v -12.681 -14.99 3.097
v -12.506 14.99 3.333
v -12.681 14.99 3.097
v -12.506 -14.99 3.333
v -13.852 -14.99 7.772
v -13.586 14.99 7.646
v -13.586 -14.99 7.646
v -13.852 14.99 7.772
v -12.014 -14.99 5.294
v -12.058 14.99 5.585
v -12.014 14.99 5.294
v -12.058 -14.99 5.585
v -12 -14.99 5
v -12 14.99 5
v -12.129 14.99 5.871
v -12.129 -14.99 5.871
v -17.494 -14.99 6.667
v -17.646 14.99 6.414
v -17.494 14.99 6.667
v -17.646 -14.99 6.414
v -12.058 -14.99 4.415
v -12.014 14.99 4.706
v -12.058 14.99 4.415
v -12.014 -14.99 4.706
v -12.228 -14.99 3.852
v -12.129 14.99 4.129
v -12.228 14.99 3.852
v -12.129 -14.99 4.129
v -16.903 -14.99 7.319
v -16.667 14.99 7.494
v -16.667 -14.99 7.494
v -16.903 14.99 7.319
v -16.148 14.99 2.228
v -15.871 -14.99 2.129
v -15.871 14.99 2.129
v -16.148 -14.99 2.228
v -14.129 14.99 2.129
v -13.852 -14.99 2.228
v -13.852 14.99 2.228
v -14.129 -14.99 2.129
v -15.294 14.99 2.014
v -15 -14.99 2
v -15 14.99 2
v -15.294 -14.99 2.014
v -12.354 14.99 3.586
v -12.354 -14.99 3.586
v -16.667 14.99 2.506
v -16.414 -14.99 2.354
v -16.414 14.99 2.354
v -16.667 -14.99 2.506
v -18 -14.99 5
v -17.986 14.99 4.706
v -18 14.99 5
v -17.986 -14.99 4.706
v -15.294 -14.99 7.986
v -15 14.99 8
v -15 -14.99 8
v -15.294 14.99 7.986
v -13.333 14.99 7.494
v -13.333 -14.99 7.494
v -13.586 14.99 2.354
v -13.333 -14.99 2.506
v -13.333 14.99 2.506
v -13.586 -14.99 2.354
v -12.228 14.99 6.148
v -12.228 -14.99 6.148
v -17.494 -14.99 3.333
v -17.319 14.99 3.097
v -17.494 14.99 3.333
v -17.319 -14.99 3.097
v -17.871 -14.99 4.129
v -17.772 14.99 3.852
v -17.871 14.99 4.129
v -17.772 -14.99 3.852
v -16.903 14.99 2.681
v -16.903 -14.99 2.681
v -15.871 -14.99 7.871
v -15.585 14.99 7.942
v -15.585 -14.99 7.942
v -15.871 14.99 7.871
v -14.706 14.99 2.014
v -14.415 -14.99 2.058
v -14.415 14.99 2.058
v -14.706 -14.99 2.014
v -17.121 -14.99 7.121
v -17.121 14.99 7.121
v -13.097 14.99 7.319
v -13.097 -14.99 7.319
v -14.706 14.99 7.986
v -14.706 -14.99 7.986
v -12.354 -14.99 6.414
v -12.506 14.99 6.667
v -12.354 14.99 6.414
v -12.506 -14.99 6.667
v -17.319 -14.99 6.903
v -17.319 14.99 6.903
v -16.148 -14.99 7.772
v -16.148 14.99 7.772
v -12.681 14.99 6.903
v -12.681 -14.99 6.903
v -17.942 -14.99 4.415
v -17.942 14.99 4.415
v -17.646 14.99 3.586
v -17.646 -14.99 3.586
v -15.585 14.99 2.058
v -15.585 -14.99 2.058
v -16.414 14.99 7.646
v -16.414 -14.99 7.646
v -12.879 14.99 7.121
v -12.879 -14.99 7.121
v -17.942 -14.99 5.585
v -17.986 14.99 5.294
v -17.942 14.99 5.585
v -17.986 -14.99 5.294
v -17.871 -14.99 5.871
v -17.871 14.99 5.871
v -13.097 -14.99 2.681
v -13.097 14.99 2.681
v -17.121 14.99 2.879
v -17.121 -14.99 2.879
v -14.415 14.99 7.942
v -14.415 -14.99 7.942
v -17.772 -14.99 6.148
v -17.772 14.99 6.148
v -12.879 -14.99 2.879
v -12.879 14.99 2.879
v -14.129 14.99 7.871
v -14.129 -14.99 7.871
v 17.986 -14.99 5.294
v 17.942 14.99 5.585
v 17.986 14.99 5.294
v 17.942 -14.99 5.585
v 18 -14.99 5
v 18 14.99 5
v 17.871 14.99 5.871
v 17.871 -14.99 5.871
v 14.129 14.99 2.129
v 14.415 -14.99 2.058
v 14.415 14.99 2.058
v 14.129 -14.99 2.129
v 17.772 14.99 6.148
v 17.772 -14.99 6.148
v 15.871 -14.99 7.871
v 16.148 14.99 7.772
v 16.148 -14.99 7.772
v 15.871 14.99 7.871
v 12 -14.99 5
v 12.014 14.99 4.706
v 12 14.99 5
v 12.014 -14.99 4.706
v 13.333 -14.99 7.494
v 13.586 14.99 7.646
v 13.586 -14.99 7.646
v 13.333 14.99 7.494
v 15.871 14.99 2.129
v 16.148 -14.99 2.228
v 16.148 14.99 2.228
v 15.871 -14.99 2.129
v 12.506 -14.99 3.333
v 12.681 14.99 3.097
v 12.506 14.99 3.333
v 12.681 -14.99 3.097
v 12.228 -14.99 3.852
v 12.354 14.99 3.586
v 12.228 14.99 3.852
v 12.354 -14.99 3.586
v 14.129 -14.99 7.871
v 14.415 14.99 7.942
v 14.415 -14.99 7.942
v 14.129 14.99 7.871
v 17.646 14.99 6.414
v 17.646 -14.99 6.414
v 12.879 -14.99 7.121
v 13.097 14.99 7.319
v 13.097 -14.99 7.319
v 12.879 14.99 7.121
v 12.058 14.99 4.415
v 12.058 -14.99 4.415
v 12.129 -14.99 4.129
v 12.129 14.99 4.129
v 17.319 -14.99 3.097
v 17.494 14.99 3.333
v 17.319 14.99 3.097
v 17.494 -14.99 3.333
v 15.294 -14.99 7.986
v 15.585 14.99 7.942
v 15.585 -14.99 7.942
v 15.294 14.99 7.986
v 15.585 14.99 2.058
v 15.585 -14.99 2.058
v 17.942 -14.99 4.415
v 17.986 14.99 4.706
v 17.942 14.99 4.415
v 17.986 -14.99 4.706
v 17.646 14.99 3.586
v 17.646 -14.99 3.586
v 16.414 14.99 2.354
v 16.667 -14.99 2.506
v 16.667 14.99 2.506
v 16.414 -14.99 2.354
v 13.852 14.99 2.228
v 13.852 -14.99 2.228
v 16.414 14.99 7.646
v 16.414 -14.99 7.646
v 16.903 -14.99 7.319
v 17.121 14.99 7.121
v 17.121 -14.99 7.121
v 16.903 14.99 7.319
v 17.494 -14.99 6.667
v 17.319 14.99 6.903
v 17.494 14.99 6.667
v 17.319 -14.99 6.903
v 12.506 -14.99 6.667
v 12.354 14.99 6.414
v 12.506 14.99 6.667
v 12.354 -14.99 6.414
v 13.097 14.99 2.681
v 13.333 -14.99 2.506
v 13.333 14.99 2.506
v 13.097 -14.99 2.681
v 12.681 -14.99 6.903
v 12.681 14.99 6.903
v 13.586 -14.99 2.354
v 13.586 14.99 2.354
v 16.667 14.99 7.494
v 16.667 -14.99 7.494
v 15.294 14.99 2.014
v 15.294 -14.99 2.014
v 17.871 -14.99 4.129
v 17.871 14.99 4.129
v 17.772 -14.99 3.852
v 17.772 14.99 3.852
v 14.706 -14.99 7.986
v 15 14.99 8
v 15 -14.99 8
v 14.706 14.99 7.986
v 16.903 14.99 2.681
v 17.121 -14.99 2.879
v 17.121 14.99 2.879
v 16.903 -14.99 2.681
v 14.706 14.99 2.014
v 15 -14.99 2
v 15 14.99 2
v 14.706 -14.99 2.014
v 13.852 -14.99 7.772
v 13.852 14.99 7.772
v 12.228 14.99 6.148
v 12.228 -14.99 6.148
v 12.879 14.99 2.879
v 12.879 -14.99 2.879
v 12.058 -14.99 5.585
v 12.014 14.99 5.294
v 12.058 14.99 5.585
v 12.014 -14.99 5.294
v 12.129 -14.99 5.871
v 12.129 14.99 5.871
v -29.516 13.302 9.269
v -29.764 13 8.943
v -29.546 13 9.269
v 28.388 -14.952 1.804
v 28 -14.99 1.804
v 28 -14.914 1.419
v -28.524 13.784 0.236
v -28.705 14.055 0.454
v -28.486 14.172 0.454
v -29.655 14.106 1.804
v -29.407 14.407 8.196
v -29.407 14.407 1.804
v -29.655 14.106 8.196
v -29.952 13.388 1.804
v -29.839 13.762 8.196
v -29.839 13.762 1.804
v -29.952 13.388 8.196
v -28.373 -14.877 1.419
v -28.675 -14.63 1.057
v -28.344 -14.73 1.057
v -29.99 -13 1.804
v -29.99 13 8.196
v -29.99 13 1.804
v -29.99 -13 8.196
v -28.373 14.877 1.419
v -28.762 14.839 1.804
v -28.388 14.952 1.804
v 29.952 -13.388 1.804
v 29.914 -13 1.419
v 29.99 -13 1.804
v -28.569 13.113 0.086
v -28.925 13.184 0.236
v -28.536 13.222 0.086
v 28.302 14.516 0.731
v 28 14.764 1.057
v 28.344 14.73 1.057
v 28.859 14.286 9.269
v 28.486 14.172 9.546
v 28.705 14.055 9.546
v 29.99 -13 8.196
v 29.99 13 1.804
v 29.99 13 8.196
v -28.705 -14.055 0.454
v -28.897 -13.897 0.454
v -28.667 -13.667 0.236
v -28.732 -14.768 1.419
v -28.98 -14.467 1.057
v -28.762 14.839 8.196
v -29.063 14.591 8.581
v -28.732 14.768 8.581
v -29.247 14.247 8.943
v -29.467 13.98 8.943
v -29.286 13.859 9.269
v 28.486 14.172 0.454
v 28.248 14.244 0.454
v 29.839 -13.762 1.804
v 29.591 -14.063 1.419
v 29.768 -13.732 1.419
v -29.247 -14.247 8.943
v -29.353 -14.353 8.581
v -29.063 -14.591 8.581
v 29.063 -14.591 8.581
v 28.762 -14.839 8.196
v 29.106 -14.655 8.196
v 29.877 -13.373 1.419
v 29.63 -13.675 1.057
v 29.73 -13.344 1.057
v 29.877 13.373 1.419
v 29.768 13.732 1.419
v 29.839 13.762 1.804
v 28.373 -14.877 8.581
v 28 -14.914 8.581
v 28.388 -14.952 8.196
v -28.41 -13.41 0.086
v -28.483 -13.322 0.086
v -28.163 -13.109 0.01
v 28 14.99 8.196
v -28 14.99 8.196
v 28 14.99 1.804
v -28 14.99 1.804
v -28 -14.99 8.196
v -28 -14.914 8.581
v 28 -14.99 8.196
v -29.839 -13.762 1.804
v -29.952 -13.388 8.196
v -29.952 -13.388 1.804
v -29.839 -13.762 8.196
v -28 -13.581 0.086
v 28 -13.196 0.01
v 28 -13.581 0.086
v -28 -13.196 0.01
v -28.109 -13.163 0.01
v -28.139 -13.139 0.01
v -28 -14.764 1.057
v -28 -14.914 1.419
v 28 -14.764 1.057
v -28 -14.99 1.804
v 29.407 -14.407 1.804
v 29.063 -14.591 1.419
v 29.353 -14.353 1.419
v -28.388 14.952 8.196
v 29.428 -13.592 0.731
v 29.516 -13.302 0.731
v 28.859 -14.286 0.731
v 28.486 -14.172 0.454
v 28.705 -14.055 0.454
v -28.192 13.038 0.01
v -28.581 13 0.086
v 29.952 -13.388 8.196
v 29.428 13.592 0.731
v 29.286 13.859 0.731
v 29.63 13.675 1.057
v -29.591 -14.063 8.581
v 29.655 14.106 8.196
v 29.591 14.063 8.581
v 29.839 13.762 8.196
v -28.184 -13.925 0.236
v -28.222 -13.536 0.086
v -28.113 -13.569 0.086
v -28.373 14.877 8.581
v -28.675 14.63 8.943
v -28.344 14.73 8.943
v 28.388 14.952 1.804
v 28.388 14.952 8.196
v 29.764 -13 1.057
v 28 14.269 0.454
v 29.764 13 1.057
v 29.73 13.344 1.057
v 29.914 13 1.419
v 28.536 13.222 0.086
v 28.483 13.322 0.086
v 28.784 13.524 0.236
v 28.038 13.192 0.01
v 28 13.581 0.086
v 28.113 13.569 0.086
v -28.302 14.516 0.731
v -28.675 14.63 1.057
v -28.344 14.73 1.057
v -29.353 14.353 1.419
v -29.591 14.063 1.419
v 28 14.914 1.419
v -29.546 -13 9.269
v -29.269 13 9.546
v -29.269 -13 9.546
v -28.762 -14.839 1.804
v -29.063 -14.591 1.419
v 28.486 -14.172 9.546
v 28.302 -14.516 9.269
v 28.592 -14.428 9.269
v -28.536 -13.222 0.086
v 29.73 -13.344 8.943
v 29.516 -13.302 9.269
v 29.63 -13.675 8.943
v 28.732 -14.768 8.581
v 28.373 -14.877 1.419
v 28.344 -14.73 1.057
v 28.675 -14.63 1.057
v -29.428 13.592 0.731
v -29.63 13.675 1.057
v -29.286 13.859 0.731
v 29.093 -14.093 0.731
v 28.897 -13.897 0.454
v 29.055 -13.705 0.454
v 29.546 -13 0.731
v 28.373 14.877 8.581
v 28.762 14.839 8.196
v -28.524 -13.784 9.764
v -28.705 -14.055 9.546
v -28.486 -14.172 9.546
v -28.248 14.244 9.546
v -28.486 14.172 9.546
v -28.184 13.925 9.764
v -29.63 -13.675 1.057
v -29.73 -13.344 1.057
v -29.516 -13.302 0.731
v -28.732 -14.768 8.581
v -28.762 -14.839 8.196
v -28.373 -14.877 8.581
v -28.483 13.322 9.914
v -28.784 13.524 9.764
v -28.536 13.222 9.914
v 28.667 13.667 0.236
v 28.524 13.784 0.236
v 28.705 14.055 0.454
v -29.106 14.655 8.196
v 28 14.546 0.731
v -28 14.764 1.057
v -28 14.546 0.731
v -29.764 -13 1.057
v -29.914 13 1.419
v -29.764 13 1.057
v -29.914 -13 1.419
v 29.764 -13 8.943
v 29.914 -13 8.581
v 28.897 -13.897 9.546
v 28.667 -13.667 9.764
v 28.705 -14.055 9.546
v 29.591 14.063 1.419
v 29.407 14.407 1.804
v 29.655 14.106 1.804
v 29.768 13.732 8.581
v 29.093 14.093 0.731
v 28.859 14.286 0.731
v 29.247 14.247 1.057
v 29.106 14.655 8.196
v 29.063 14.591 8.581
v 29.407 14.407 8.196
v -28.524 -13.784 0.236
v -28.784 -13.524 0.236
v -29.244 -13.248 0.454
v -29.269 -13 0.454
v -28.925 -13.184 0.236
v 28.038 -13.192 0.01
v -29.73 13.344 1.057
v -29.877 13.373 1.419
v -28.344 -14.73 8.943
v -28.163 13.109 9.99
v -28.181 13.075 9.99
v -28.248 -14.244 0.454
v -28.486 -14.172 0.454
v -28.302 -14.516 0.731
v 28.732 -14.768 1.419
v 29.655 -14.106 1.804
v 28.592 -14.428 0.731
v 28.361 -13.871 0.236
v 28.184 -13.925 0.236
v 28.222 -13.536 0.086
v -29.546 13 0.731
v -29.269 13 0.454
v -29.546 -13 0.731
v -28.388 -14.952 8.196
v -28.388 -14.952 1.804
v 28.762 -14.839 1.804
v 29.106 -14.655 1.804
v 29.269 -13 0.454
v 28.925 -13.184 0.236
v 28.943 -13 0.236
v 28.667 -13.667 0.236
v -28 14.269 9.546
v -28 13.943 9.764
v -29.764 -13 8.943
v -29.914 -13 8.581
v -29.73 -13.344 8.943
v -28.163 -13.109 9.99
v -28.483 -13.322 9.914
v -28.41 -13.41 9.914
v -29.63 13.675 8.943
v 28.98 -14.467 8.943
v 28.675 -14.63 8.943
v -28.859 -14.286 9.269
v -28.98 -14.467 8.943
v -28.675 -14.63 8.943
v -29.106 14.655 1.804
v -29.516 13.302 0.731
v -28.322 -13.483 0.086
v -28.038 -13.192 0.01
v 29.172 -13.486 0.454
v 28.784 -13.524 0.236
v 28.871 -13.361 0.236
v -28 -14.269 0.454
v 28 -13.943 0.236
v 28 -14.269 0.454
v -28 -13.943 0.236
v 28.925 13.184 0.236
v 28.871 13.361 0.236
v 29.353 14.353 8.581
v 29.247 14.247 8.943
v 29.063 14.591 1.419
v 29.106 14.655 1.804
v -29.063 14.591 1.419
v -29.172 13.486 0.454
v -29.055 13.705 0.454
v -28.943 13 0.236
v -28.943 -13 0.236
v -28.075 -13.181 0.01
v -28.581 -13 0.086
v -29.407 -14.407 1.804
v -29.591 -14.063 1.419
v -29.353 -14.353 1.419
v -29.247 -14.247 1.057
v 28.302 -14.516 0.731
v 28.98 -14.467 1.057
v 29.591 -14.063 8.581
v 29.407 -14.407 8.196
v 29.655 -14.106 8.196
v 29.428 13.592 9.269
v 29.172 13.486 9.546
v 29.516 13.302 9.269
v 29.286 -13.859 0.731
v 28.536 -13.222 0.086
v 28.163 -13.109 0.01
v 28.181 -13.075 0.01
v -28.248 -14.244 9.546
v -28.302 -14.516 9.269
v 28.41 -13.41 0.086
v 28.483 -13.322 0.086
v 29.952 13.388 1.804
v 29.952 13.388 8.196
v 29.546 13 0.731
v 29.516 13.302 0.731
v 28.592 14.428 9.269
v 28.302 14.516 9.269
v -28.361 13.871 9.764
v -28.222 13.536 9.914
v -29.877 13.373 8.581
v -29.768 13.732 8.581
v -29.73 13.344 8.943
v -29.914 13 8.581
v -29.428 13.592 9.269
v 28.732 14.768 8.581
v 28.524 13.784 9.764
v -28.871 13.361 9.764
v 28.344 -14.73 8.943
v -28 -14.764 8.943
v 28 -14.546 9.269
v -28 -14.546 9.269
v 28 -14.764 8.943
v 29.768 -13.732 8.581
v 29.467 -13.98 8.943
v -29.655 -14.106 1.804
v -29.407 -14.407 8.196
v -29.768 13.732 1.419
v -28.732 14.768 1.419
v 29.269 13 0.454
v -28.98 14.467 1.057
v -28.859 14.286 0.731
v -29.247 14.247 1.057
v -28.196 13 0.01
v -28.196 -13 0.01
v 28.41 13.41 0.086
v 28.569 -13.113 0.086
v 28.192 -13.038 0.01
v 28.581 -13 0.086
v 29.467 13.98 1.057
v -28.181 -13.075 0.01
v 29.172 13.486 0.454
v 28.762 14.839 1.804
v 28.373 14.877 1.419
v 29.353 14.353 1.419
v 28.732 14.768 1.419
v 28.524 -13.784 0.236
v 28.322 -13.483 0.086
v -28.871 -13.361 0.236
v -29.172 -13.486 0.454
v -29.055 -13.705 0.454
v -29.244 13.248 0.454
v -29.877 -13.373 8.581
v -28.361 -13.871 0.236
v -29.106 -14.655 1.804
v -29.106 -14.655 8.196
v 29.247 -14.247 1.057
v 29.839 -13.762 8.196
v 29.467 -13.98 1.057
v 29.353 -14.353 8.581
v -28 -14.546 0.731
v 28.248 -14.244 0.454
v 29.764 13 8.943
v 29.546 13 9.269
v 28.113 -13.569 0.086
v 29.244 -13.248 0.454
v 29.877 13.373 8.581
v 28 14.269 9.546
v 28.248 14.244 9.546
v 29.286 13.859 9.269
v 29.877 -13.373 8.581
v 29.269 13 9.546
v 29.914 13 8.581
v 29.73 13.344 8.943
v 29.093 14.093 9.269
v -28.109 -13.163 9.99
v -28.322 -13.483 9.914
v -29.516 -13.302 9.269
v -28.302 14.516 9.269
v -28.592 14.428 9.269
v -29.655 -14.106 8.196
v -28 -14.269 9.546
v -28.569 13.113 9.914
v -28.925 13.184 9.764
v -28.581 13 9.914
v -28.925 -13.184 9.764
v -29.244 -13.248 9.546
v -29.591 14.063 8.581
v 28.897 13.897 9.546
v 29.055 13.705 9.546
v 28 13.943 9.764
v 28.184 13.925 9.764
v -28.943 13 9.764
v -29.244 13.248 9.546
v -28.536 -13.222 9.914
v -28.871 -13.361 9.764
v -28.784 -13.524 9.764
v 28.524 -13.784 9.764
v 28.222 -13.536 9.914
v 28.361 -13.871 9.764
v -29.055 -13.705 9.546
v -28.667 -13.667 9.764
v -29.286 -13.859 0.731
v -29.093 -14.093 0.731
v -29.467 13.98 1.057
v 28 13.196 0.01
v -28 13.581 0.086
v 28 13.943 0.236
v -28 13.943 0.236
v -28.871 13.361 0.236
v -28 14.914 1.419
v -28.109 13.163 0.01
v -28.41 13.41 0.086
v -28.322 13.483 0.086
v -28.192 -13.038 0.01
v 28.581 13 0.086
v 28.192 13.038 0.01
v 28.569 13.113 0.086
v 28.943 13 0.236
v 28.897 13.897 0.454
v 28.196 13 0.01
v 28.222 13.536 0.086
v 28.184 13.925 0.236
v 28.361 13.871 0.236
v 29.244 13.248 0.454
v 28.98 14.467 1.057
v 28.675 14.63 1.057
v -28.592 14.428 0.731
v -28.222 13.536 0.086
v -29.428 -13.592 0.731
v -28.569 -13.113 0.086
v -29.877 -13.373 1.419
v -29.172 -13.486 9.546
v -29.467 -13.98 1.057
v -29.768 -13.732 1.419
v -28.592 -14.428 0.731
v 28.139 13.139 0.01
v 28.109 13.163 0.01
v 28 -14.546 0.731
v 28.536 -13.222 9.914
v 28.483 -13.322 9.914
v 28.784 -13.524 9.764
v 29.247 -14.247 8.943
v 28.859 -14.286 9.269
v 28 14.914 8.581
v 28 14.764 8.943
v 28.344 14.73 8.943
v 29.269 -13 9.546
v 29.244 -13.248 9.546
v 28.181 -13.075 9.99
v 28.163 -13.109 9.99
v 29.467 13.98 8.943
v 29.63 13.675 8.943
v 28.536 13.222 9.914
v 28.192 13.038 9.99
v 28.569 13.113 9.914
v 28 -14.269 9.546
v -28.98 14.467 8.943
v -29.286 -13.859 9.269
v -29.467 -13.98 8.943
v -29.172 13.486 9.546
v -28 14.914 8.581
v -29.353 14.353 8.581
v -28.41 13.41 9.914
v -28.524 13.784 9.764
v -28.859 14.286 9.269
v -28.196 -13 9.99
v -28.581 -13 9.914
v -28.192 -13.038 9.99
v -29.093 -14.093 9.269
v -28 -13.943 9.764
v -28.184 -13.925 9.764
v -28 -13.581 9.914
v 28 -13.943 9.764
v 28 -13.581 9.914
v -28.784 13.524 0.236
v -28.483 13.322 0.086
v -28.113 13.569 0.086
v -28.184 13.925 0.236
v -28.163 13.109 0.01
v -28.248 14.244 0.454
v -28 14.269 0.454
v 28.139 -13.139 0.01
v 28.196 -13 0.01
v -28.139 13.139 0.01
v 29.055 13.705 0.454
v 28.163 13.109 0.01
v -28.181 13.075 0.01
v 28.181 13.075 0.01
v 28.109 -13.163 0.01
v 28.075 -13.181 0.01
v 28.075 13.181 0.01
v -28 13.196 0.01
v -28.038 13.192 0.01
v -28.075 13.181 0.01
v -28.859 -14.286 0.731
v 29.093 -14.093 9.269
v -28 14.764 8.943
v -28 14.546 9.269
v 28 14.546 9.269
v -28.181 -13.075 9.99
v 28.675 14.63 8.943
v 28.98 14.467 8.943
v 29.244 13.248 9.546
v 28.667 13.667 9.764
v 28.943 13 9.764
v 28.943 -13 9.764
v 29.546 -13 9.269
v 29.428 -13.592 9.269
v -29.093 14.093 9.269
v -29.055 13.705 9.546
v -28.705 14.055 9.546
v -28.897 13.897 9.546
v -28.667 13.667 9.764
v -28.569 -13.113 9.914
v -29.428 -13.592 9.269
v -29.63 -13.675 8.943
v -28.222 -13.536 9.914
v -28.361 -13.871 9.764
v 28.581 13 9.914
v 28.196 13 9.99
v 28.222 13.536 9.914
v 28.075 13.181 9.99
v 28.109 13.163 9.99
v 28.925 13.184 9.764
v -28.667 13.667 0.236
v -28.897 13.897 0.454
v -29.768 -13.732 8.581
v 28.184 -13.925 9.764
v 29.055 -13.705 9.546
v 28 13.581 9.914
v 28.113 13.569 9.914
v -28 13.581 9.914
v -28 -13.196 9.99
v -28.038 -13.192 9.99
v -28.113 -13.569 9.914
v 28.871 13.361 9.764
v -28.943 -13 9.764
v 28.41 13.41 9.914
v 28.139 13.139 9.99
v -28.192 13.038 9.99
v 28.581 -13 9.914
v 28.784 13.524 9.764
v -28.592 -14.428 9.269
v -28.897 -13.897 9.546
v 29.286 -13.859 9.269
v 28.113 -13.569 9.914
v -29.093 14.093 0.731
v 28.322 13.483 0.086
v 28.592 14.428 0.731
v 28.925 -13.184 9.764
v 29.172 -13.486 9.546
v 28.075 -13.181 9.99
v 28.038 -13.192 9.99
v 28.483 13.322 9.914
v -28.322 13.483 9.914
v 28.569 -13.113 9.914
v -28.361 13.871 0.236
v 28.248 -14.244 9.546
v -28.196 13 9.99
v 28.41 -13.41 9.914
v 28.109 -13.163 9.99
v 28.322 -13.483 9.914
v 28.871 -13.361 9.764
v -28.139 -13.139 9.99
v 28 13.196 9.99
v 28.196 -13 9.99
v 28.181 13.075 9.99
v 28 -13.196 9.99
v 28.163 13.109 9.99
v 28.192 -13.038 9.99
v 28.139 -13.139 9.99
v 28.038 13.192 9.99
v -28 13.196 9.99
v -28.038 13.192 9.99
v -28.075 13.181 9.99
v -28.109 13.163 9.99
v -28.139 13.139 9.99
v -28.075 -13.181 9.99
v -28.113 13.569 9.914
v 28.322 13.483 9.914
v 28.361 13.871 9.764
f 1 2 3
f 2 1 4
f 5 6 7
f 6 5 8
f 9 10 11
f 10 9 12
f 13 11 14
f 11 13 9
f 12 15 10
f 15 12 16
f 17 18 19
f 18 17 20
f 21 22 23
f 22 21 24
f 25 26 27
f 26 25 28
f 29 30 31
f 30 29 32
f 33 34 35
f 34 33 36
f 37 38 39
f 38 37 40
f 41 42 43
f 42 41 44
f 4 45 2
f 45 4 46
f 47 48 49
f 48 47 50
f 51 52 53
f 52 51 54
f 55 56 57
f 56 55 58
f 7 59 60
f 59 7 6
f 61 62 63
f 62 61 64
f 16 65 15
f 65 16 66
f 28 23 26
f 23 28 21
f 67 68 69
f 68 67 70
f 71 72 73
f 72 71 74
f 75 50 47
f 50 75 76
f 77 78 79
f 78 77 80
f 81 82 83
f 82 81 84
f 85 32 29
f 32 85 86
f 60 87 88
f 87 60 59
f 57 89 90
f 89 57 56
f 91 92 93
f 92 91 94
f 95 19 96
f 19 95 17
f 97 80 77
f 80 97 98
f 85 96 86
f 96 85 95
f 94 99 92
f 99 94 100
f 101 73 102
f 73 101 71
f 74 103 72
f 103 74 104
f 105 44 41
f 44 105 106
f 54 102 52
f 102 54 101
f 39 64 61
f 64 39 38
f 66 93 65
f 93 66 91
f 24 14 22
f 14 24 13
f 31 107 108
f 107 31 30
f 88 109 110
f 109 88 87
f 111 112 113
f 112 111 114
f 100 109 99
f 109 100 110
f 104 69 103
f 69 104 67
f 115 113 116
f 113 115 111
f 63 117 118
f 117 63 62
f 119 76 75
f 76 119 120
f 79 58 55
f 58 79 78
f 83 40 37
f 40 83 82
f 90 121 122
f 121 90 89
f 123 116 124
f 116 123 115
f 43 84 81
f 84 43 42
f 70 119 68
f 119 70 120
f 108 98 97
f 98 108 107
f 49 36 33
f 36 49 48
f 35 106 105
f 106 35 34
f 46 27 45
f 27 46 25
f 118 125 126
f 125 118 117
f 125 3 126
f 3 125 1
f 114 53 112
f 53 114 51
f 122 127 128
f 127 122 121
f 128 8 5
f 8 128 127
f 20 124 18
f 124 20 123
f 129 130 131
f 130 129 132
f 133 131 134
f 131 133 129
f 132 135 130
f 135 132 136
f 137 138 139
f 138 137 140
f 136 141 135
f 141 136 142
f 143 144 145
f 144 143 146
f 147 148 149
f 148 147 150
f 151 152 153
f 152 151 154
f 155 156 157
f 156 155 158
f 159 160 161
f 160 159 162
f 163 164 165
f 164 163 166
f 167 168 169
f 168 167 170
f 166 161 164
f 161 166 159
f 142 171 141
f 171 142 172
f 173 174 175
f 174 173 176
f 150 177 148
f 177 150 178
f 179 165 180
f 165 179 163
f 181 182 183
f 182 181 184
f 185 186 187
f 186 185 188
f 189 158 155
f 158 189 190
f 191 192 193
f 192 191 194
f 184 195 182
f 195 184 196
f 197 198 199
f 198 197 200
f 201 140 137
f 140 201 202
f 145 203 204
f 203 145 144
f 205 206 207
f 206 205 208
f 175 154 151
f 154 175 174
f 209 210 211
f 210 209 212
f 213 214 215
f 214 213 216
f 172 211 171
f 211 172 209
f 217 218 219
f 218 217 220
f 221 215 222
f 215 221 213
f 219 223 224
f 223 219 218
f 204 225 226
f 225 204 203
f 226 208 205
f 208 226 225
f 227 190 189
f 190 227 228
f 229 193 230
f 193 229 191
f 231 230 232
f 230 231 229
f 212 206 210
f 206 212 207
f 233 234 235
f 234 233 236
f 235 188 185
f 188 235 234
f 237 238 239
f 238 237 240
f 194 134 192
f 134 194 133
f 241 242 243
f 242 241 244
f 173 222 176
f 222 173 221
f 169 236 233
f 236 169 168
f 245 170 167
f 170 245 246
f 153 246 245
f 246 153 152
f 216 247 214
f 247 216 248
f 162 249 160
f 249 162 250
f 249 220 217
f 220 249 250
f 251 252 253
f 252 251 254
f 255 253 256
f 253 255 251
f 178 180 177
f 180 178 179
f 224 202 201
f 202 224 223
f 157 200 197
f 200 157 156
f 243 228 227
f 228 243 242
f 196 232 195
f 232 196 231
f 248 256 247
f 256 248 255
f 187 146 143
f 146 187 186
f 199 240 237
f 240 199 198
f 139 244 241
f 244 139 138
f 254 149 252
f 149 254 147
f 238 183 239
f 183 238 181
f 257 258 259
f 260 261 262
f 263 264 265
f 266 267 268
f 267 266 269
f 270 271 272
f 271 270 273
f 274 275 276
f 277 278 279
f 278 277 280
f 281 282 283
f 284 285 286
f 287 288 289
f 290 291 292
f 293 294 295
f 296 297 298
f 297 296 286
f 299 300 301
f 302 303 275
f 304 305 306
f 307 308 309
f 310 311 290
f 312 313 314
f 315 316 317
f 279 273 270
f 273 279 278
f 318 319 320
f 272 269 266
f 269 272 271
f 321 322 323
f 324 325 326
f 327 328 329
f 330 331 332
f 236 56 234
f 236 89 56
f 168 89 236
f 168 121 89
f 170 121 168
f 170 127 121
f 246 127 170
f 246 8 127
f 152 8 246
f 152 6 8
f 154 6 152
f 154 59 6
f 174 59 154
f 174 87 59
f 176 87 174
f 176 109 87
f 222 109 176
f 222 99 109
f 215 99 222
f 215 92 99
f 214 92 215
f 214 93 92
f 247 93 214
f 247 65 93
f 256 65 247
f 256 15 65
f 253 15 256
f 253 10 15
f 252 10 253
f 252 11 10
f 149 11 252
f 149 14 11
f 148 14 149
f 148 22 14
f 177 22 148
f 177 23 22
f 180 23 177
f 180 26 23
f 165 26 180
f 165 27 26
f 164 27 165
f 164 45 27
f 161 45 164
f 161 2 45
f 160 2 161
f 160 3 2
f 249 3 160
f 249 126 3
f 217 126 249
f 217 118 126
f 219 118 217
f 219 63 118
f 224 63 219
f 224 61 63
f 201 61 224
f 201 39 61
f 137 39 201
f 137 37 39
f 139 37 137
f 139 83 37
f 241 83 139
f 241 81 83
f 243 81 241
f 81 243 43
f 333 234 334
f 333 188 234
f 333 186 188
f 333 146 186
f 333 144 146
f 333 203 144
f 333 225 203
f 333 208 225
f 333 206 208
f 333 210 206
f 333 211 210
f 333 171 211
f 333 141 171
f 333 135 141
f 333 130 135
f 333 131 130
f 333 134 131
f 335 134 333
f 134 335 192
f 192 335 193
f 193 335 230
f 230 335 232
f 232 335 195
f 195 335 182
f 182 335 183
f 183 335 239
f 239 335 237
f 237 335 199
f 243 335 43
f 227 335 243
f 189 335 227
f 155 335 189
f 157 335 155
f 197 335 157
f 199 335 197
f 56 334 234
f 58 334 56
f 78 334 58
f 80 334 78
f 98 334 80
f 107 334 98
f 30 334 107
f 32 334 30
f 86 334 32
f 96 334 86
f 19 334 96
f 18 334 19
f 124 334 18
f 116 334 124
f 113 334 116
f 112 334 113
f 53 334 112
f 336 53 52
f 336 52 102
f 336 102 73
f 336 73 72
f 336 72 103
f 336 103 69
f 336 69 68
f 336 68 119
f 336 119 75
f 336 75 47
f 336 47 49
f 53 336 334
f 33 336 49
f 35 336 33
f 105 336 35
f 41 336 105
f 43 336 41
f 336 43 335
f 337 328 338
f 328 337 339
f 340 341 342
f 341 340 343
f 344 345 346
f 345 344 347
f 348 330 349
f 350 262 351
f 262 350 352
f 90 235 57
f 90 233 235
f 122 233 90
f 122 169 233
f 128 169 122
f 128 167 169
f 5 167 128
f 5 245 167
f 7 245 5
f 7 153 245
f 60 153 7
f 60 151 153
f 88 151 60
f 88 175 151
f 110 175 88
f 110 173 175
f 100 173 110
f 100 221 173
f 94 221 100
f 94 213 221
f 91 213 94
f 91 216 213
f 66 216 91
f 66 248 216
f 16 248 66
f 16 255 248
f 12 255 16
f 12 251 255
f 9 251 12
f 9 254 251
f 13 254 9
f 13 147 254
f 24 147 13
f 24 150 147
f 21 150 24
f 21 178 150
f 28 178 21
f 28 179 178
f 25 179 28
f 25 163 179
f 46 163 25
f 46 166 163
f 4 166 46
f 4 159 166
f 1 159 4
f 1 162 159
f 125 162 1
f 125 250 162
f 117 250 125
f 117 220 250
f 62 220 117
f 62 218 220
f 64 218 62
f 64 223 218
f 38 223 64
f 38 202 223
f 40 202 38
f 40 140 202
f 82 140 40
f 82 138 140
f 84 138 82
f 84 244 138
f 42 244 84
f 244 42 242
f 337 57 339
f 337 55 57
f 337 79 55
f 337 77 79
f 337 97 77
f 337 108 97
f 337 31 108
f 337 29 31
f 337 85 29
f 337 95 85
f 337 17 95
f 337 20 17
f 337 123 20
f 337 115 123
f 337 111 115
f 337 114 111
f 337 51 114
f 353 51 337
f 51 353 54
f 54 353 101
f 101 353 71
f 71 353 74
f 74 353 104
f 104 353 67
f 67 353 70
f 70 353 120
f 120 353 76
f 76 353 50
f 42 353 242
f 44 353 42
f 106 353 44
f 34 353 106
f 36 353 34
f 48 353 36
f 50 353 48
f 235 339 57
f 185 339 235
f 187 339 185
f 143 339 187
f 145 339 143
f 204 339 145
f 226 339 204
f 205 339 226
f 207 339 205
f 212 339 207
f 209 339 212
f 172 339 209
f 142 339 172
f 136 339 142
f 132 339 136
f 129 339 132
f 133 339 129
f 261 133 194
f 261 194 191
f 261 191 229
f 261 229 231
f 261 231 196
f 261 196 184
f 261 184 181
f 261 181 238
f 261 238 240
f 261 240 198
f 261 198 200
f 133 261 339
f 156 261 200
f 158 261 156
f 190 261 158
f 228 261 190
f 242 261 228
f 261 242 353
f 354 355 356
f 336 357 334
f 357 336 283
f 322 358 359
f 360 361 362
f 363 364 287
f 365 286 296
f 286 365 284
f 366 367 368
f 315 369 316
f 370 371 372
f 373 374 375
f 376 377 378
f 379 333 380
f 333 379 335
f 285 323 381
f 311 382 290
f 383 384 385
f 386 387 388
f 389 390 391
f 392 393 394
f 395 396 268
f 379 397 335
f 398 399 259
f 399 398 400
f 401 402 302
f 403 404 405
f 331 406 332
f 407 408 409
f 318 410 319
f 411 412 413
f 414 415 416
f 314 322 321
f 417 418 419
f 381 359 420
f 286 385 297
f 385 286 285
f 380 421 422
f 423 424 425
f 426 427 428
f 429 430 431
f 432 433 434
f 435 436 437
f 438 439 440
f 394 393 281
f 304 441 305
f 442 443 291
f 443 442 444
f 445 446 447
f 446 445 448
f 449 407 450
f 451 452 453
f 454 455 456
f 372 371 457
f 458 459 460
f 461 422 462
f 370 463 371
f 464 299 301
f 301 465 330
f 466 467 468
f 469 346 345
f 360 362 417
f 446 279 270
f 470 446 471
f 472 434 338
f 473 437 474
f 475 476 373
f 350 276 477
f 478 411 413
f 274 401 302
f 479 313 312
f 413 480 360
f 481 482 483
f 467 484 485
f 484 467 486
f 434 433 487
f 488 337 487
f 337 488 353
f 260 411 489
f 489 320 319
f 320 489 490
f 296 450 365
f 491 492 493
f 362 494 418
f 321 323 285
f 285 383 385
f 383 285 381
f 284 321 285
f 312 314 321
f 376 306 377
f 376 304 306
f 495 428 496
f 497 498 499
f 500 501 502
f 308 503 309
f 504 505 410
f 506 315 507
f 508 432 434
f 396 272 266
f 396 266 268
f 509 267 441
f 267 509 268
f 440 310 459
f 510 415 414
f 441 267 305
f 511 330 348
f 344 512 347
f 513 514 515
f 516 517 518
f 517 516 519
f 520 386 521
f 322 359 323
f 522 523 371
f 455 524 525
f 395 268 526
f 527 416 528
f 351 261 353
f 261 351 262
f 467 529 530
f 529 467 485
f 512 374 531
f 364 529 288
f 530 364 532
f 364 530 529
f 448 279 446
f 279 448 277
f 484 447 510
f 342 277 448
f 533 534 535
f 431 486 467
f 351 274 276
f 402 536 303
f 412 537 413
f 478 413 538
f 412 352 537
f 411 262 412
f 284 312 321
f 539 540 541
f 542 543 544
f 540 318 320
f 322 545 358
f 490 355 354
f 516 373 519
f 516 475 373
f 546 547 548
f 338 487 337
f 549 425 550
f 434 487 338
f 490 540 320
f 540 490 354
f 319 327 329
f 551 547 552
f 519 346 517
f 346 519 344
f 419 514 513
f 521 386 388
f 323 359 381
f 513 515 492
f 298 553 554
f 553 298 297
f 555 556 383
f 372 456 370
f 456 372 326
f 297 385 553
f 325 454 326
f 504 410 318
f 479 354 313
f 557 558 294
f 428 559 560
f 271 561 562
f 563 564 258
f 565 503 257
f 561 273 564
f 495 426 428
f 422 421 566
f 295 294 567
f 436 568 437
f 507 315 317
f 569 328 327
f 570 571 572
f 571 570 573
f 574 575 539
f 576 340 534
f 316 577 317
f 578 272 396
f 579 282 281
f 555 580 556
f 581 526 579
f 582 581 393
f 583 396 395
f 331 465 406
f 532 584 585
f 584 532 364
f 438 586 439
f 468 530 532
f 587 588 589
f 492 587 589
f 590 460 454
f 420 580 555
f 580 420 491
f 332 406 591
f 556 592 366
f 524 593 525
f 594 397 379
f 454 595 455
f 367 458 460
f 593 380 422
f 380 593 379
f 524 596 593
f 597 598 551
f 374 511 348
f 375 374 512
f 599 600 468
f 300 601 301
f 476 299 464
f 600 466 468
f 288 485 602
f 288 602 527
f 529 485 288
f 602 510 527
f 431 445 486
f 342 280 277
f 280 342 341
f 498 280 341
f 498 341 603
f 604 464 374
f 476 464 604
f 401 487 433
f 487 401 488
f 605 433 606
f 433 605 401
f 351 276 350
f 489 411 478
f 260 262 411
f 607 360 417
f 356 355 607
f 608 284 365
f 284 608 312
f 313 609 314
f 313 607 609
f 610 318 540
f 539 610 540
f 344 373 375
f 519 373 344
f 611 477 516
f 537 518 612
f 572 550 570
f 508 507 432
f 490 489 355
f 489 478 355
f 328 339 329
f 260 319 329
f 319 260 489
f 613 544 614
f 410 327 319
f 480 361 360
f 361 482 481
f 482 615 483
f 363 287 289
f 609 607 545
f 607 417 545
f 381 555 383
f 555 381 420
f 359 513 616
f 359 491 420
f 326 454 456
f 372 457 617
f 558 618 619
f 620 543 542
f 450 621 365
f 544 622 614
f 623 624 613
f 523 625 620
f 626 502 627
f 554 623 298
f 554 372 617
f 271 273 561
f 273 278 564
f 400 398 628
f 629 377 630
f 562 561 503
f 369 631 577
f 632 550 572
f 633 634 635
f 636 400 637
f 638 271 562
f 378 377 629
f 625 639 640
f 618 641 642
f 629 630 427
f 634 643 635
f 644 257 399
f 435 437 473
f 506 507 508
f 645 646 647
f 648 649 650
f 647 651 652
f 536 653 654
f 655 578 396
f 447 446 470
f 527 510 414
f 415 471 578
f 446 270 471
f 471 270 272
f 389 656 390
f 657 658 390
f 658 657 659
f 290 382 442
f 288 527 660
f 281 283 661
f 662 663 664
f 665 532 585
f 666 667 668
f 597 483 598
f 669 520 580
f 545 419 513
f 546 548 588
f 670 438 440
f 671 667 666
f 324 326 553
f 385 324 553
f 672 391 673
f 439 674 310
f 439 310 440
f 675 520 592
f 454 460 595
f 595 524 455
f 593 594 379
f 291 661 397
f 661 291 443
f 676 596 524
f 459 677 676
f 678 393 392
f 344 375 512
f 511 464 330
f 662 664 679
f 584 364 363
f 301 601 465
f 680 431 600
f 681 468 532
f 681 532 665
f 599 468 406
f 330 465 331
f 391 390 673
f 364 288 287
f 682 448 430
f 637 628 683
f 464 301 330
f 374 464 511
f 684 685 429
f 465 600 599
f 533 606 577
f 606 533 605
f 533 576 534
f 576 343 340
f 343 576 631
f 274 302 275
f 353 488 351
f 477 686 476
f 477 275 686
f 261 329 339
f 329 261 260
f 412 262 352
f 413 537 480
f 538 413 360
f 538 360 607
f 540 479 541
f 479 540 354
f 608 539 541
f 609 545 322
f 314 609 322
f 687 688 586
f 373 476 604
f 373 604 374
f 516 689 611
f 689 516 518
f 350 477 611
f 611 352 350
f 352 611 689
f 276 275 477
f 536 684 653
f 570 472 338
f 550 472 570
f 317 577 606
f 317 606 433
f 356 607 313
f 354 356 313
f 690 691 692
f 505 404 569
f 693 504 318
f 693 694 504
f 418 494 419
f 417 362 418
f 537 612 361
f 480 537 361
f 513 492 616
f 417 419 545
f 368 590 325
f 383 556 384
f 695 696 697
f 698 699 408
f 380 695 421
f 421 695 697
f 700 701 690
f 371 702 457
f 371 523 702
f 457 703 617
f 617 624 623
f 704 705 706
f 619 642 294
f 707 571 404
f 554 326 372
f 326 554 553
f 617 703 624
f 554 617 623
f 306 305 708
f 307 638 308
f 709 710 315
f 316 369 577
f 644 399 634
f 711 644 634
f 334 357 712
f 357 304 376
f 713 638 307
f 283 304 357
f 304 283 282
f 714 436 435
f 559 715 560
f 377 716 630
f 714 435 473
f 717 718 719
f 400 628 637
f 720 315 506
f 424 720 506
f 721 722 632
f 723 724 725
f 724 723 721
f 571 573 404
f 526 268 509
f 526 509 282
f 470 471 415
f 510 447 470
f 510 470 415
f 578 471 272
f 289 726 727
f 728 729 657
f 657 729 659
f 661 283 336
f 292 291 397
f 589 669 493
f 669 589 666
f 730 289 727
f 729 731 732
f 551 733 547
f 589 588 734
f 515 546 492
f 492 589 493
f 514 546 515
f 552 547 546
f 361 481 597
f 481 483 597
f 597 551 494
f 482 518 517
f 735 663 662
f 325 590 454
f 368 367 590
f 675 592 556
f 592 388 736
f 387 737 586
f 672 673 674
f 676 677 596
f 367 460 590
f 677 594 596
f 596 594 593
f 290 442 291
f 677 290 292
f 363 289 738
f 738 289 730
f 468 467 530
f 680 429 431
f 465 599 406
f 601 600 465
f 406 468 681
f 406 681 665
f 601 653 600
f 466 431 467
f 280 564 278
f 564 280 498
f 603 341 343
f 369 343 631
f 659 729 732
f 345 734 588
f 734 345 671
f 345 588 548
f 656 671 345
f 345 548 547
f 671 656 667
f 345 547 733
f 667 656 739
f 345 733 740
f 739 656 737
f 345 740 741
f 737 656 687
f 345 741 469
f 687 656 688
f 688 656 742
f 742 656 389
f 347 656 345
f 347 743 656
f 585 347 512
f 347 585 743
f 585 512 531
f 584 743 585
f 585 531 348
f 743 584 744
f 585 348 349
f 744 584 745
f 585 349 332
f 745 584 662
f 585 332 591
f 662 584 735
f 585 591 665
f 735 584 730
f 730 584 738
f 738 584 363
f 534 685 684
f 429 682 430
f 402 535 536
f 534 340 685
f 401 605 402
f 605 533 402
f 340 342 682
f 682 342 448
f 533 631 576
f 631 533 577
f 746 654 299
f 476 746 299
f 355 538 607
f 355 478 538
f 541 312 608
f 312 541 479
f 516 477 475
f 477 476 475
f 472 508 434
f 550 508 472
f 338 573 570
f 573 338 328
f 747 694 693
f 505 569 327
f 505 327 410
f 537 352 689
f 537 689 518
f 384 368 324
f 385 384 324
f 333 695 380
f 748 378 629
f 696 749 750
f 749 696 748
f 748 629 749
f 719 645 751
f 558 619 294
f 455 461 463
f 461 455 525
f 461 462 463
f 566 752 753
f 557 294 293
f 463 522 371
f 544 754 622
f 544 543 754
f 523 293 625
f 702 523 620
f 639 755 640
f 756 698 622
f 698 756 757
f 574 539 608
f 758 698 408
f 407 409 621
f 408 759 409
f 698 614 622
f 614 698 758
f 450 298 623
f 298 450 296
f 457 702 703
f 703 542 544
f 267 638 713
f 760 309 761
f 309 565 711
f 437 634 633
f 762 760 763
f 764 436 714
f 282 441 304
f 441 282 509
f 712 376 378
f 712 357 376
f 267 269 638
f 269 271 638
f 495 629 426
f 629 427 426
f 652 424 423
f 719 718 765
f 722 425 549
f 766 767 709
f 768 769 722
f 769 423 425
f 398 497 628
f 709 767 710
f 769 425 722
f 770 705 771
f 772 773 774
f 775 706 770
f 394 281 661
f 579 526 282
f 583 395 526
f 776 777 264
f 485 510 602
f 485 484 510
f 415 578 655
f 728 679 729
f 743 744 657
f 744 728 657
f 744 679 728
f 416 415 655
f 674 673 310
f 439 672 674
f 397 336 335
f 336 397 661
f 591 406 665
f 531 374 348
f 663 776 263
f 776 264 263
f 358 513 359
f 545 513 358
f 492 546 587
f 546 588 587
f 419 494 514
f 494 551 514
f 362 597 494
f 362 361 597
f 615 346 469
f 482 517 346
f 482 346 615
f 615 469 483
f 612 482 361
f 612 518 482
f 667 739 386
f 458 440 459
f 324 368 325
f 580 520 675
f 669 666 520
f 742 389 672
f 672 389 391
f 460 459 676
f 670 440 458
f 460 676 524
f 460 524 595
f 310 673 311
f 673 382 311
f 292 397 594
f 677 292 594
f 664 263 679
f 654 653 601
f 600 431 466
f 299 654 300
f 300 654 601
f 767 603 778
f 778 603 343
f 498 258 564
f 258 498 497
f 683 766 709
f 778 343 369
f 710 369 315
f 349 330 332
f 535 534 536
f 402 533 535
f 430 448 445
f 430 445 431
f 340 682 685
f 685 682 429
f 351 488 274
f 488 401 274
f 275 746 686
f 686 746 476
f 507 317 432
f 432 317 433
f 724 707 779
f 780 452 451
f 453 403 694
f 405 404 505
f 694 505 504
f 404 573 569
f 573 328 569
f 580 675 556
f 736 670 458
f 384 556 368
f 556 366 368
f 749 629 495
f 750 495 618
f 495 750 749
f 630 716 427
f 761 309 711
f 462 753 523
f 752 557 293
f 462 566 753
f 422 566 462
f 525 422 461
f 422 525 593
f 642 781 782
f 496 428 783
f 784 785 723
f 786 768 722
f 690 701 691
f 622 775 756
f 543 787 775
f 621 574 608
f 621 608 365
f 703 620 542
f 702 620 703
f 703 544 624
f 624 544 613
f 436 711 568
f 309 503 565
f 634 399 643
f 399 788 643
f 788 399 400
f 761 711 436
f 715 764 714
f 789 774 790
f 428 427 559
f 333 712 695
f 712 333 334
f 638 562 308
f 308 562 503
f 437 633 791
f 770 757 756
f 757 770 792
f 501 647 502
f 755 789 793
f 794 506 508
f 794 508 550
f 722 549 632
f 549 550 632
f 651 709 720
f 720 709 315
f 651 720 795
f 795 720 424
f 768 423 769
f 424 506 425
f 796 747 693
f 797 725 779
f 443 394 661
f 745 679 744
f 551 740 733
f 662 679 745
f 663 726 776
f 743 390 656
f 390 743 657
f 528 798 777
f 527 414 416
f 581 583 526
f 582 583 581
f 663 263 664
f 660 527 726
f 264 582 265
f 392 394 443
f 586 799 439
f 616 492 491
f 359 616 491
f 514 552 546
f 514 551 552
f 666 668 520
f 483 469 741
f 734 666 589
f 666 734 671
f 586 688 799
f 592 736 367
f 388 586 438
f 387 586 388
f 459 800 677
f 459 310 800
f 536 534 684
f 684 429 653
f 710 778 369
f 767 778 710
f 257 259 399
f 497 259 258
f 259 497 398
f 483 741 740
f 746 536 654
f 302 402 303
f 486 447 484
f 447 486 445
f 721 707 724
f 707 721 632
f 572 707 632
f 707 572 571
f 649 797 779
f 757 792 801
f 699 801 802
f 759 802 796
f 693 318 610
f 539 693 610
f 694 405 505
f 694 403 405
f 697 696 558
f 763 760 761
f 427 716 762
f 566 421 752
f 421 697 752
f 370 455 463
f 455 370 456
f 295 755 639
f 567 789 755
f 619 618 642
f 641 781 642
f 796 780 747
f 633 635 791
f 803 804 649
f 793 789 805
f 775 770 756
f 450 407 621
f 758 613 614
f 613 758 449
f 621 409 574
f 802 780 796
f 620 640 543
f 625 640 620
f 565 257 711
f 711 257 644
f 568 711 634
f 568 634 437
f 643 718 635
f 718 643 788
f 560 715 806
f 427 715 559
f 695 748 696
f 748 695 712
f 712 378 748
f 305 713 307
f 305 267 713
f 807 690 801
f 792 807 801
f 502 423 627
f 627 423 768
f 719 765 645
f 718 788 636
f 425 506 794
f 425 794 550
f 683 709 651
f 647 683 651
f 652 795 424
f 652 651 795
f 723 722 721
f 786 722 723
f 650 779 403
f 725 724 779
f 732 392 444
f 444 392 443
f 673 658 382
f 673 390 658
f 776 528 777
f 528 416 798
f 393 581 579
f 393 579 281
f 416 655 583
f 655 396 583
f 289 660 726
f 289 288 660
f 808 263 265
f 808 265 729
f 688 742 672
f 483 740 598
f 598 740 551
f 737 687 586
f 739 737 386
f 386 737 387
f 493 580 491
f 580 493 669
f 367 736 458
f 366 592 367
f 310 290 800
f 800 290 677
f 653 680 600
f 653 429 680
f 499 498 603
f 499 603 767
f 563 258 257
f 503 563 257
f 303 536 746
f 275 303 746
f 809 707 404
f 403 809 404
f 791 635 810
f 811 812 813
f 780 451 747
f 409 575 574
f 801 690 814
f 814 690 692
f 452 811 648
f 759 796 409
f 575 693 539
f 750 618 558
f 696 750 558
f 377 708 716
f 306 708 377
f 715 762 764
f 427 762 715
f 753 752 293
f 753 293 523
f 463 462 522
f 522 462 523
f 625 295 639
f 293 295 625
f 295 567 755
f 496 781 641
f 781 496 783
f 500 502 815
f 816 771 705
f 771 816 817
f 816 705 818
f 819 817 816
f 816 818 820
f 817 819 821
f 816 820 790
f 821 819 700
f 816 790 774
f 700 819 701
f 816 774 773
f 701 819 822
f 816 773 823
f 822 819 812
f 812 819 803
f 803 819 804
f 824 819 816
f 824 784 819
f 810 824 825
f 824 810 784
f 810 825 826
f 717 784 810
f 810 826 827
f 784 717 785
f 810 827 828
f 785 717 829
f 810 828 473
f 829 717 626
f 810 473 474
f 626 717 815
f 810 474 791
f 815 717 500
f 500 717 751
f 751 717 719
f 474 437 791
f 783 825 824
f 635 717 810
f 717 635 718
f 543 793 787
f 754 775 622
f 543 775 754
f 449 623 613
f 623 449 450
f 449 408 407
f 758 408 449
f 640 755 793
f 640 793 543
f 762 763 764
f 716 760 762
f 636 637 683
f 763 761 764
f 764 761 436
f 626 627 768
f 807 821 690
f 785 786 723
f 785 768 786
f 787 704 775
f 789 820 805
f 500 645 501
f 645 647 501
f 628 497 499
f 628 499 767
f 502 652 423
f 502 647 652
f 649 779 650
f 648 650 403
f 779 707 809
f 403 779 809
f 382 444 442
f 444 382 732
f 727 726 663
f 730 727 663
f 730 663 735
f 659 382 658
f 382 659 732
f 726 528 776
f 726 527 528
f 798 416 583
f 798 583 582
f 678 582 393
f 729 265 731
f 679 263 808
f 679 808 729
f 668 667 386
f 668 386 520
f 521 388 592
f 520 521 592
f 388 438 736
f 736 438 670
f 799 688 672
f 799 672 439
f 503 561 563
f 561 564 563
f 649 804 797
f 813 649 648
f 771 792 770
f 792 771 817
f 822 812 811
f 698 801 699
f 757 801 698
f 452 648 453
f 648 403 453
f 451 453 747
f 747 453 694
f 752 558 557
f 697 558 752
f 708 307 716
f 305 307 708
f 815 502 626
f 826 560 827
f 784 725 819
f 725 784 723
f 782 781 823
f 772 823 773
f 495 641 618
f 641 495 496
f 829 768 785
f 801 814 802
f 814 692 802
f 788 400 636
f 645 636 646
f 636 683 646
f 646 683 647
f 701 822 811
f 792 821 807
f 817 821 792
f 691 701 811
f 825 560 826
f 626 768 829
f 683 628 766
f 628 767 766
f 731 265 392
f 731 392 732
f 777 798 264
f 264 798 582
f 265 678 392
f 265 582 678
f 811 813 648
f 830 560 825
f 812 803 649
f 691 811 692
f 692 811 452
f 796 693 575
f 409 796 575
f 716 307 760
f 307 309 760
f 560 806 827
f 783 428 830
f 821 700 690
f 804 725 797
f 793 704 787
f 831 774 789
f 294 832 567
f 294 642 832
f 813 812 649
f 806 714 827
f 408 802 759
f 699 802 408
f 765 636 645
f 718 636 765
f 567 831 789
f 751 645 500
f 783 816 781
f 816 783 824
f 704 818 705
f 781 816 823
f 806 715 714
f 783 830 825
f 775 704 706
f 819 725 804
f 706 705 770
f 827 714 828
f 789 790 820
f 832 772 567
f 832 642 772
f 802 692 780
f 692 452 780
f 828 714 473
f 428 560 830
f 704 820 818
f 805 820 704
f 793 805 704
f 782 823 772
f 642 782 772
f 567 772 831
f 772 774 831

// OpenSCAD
// Parameters
block_length = 60;
block_width = 30;
block_height = 10;
hole_diameter = 6;
hole_offset_x = 15; // Distance from center of hole to edge
corner_radius = 2;

// Module for rounded rectangular block
module rounded_block(length, width, height, radius) {
    minkowski() {
        cube([length - 2*radius, width - 2*radius, height - 2*radius], center=true);
        sphere(r=radius, $fn=32);
    }
}

// Module for the block with holes
module rectangular_block_with_holes() {
    difference() {
        // Rounded block
        translate([0, 0, block_height/2])
            rounded_block(block_length, block_width, block_height, corner_radius);
        
        // Holes
        for (x = [-1, 1]) {
            translate([x * (block_length/2 - hole_offset_x), 0, block_height/2])
                rotate([90, 0, 0])
                    cylinder(h=block_width + 2, d=hole_diameter, center=true, $fn=64);
        }
    }
}

// Render the model
rectangular_block_with_holes();
